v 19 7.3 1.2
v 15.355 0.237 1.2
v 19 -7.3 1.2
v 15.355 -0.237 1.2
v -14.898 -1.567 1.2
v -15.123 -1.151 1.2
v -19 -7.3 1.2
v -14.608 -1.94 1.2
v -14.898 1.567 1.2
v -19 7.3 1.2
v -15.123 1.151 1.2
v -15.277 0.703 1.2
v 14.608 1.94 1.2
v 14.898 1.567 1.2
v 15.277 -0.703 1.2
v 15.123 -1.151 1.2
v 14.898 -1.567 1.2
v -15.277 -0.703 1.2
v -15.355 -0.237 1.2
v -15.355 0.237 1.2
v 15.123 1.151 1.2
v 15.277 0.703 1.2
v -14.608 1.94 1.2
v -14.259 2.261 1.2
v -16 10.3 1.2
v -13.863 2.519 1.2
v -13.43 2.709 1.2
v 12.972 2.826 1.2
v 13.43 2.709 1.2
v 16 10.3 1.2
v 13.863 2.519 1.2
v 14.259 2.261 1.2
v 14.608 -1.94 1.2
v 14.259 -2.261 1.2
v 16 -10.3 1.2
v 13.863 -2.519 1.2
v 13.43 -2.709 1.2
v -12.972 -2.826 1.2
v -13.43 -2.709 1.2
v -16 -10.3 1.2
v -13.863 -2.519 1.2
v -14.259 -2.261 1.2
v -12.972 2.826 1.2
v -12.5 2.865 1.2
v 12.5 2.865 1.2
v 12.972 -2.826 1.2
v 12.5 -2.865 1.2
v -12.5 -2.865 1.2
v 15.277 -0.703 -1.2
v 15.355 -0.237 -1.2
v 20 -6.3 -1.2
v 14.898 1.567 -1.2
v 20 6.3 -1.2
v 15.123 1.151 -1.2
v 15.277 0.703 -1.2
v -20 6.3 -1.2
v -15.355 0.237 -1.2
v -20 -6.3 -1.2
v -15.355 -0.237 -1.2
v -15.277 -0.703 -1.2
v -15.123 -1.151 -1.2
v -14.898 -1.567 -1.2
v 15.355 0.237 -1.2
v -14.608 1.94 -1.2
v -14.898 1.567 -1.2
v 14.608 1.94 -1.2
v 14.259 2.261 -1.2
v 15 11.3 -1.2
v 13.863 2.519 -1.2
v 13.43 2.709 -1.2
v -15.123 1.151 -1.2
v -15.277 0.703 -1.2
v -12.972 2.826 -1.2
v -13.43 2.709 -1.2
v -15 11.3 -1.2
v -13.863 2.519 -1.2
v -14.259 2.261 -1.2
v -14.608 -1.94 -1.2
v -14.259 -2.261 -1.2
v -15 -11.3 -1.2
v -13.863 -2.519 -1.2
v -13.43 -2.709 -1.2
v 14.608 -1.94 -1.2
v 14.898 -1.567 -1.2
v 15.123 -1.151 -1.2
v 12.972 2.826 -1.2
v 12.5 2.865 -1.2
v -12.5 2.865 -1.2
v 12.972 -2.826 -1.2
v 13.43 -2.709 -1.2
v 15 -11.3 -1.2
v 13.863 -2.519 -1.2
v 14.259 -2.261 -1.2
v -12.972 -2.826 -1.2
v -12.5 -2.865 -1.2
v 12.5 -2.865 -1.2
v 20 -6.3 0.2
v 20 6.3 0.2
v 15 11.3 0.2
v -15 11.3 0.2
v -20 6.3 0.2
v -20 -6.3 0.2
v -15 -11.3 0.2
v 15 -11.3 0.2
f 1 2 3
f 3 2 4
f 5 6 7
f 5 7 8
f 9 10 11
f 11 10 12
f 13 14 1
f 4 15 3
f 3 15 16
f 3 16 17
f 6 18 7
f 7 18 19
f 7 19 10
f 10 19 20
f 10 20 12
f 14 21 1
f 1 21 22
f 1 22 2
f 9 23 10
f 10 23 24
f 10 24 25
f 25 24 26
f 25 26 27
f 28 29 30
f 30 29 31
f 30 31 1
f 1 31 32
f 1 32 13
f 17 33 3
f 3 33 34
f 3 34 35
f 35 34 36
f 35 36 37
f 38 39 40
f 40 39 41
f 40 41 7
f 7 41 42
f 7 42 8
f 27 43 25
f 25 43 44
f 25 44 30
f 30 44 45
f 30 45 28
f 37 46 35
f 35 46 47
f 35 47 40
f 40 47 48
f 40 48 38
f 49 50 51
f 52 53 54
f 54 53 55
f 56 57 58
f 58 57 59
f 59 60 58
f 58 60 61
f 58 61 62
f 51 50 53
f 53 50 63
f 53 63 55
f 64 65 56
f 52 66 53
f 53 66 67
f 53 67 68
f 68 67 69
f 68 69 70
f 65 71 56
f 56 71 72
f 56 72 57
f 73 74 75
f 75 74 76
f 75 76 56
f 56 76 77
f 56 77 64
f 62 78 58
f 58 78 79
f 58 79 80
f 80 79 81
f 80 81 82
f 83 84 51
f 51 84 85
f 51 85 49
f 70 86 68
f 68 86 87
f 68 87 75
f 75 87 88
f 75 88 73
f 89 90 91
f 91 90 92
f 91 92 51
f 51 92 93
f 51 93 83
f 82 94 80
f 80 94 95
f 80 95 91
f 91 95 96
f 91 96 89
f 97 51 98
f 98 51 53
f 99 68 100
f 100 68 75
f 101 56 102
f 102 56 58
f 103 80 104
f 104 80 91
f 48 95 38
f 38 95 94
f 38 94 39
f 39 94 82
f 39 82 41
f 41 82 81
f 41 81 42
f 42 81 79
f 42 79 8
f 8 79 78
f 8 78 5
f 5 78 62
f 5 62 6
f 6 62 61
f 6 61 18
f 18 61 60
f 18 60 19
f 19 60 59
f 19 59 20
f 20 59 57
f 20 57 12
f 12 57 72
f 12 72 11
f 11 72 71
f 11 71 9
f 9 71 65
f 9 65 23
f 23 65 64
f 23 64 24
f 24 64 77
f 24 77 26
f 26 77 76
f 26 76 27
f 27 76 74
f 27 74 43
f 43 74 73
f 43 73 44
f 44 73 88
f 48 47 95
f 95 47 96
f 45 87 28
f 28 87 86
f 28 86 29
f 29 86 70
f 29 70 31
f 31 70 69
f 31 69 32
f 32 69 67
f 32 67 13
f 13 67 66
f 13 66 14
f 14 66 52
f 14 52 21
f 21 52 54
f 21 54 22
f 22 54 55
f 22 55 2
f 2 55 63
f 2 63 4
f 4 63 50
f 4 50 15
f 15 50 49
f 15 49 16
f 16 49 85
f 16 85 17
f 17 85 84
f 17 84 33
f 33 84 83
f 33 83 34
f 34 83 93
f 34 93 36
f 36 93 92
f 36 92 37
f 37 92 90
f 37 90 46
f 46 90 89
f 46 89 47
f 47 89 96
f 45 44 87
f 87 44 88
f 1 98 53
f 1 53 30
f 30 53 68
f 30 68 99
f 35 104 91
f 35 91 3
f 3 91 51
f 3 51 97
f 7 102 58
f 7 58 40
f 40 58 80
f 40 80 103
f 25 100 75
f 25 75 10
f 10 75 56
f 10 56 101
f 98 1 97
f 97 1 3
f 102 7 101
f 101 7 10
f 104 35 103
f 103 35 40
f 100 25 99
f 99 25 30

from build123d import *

# Parameters (mm, degrees)
SKETCH_1_W      = 40
SKETCH_1_H      = 22.6
EXTRUDE_1_DEPTH = 1.2
CHAMFER_1_SIZE  = 5
CHAMFER_2_SIZE  = 1


with BuildPart() as part:
    # 스케치1 → 보스-돌출1 (new, symmetric)
    with BuildSketch(Plane.XY):
        Rectangle(SKETCH_1_W, SKETCH_1_H)
        with BuildLine():
            Line((-12.5, 2.864624259), (12.5, 2.864624259))
            ThreePointArc((12.5, 2.864624259), (15.364624259, 0), (12.5, -2.864624259))
            Line((12.5, -2.864624259), (-12.5, -2.864624259))
            ThreePointArc((-12.5, -2.864624259), (-15.364624259, 0), (-12.5, 2.864624259))
        make_face(mode=Mode.SUBTRACT)
    extrude(amount=EXTRUDE_1_DEPTH, both=True)

    # 모따기1
    chamfer_1_edges = [part.edges().sort_by_distance(p)[0] for p in [
        (20, -11.3, 0),
        (-20, -11.3, 0),
        (-20, 11.3, 0),
        (20, 11.3, 0),
    ]]
    chamfer(chamfer_1_edges, length=CHAMFER_1_SIZE)

    # 모따기2
    chamfer_2_edges = [part.edges().sort_by_distance(p)[0] for p in [
        (0, 11.3, 1.2),
        (20, 0, 1.2),
        (-20, 0, 1.2),
        (0, -11.3, 1.2),
    ]]
    chamfer(chamfer_2_edges, length=CHAMFER_2_SIZE)


solid = part.part
